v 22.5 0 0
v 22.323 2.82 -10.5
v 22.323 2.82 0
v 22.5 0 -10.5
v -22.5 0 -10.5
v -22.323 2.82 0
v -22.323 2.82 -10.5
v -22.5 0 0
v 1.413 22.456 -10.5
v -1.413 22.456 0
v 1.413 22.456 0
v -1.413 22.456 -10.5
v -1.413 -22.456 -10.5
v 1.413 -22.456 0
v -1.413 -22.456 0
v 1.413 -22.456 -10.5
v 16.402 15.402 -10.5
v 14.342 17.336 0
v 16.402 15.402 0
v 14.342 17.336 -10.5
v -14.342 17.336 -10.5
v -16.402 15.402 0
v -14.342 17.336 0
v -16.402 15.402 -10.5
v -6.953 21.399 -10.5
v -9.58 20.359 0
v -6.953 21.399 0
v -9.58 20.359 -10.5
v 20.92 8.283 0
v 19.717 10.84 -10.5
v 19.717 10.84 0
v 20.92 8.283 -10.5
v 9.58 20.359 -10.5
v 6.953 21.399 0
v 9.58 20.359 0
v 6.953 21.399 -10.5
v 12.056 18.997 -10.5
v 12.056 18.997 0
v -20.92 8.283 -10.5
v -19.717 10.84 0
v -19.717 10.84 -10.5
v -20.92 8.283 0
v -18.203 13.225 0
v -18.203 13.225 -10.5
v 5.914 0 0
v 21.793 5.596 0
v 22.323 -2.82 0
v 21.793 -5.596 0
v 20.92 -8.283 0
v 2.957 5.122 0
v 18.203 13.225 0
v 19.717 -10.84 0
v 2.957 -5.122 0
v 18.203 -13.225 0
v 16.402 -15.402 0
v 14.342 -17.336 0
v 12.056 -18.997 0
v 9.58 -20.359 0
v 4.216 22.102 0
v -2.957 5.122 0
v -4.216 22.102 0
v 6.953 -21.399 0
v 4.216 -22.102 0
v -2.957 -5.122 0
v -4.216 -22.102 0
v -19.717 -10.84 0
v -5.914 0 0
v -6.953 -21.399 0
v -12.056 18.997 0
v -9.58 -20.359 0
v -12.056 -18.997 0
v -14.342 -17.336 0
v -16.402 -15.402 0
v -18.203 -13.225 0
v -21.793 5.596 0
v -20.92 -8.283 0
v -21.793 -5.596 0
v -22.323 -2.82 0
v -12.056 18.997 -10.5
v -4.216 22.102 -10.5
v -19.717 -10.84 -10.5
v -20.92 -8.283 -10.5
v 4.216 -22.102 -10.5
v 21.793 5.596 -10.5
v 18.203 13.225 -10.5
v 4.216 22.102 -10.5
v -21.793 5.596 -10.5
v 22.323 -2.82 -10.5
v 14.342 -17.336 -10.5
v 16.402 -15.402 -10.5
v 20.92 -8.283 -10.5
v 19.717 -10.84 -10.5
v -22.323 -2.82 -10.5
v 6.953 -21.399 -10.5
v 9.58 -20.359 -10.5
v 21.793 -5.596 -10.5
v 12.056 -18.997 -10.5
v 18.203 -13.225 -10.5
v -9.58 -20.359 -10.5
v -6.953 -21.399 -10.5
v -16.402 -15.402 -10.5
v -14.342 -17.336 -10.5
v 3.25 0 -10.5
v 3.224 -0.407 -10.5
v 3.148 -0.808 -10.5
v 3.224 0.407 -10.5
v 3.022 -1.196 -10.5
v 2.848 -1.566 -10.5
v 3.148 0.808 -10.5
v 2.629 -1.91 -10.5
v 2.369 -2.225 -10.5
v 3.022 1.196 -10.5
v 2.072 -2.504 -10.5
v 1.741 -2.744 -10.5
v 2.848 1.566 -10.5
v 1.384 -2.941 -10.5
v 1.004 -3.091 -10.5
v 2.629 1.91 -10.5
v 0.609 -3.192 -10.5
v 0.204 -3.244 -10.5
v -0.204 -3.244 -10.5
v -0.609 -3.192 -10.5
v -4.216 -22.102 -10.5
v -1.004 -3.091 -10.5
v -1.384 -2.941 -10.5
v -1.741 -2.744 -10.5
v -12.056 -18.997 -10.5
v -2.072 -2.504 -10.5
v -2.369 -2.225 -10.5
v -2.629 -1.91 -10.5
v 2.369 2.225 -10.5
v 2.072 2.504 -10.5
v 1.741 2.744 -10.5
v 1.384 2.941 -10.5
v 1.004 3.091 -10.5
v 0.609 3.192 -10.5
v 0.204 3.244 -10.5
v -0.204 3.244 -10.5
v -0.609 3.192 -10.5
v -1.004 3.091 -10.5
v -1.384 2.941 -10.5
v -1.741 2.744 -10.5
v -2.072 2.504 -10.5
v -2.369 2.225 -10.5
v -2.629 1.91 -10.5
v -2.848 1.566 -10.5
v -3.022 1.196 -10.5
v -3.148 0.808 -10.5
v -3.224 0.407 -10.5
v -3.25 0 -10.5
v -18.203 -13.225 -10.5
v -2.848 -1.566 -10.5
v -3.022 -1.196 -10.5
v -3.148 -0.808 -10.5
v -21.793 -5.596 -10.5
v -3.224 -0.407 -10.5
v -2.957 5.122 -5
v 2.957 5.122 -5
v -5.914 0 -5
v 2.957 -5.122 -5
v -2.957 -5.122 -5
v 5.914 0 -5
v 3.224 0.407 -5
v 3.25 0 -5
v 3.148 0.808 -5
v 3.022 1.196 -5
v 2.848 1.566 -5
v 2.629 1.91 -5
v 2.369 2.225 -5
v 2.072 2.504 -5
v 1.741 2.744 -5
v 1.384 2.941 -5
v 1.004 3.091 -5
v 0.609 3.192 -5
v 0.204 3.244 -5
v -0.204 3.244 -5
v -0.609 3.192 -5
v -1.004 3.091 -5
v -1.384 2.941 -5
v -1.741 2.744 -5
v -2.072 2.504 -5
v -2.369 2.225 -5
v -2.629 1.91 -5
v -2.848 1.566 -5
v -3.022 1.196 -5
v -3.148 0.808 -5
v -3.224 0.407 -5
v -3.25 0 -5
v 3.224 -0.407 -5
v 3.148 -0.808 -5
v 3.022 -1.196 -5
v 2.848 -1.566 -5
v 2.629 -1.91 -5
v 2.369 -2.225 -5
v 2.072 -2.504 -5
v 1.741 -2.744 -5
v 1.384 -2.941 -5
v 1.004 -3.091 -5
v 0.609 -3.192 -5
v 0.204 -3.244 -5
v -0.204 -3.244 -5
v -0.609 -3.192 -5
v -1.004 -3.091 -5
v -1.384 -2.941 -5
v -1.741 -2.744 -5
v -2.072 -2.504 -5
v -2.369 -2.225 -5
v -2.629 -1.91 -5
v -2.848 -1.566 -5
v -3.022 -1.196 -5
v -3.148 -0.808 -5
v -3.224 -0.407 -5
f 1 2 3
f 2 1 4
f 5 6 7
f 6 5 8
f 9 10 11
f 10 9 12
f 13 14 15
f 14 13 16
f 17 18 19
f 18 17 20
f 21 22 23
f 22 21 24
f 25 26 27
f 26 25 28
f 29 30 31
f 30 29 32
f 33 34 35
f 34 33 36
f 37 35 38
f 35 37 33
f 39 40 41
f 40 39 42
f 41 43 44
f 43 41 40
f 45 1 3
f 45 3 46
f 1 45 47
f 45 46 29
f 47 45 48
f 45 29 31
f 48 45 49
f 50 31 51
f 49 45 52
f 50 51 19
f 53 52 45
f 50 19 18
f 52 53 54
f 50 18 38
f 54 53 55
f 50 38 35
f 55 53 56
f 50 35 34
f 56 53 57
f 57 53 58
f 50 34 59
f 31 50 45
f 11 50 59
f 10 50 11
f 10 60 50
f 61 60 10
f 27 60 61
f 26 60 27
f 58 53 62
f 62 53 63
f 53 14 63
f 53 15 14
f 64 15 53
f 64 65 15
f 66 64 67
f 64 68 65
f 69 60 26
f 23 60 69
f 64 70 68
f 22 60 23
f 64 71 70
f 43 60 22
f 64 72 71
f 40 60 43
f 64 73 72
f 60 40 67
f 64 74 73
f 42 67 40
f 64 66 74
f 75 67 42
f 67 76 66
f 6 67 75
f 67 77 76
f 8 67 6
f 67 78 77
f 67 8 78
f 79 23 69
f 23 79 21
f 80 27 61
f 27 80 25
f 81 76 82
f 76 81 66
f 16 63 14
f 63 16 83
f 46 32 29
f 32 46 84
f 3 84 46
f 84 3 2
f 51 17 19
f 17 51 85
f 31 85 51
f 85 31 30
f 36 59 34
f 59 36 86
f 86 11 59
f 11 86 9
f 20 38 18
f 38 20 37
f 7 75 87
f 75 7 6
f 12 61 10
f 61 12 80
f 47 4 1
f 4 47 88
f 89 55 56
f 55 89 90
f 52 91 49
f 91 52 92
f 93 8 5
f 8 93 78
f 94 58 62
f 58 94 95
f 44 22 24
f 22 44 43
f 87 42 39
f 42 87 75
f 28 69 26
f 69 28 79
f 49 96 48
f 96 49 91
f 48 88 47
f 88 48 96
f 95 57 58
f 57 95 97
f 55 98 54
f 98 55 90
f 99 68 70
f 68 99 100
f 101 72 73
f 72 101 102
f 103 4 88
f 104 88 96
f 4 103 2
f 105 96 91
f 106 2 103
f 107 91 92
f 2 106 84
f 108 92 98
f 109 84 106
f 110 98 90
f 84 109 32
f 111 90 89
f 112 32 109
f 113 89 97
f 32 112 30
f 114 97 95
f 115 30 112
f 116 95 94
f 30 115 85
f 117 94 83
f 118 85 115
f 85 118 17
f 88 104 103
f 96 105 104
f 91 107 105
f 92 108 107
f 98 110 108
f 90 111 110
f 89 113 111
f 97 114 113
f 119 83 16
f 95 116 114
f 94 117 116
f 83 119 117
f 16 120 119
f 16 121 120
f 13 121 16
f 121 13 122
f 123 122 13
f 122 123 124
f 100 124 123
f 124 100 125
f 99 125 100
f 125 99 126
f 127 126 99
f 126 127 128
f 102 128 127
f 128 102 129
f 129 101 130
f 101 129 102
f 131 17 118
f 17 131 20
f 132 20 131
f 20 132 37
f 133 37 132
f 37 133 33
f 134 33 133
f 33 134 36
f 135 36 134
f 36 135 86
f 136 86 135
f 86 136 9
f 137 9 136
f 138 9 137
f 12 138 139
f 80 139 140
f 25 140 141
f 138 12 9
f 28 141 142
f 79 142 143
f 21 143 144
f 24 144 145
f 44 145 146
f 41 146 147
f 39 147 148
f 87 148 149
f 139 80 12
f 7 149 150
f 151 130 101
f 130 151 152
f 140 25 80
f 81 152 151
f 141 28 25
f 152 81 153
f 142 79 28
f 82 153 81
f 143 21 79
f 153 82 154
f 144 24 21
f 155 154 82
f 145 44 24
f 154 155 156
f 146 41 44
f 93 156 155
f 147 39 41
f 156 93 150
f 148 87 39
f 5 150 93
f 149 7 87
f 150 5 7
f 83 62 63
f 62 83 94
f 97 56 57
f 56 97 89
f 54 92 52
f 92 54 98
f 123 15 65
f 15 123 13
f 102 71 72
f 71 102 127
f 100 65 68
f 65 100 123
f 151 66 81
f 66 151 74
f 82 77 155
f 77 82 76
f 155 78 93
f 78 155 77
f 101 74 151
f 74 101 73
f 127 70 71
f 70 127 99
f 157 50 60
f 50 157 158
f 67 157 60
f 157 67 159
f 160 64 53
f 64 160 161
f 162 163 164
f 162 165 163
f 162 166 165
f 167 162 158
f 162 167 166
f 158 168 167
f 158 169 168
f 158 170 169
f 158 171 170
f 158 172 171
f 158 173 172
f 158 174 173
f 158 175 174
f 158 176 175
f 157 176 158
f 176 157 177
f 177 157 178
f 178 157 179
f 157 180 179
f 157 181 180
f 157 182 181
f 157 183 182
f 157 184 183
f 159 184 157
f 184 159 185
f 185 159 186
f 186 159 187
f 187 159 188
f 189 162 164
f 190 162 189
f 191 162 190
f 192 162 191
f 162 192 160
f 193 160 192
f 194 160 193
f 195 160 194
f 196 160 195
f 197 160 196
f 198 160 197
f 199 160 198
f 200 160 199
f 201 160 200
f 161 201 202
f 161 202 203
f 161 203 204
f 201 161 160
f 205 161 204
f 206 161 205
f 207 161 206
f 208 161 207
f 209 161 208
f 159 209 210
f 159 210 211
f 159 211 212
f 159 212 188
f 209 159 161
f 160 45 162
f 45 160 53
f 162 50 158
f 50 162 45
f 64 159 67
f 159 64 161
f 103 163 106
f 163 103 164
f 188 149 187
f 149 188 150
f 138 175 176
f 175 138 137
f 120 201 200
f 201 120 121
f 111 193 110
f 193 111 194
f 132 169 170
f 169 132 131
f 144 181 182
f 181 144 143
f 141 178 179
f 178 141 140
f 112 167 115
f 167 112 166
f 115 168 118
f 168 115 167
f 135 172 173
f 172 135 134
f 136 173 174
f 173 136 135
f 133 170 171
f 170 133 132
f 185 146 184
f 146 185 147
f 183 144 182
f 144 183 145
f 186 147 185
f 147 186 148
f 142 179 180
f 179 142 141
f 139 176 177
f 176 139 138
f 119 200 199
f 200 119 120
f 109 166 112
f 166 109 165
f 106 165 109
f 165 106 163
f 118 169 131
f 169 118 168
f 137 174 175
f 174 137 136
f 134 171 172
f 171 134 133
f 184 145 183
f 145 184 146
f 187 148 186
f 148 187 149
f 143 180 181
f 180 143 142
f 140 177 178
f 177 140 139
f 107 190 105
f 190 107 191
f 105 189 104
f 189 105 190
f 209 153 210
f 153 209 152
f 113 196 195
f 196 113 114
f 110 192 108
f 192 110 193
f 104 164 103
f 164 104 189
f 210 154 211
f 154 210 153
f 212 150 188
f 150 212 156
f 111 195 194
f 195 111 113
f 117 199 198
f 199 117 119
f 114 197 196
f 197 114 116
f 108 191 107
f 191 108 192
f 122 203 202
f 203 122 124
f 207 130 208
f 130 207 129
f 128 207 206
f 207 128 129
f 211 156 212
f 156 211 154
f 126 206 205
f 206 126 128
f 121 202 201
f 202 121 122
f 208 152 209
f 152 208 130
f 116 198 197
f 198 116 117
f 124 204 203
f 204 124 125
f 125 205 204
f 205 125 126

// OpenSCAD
$fn = 50;


difference() {
	union() {
		translate(v = [0, 0, -10.5000000000]) {
			cylinder(h = 10.5000000000, r = 22.5000000000);
		}
		translate(v = [0, 0, -9.0000000000]) {
			cylinder(h = 9, r = 2.8750000000);
		}
	}
	union() {
		translate(v = [0, 0, 0]) {
			rotate(a = [0, 0, 0]) {
				difference() {
					union() {
						translate(v = [0, 0, -5]) {
							linear_extrude(height = 5) {
								polygon(points = [[5.9142500000, 0.0000000000], [2.9571250000, 5.1218907443], [-2.9571250000, 5.1218907443], [-5.9142500000, 0.0000000000], [-2.9571250000, -5.1218907443], [2.9571250000, -5.1218907443]]);
							}
						}
					}
					union();
				}
			}
		}
		#translate(v = [0, 0, -100.0000000000]) {
			cylinder(h = 200, r = 3.2500000000);
		}
	}
}
